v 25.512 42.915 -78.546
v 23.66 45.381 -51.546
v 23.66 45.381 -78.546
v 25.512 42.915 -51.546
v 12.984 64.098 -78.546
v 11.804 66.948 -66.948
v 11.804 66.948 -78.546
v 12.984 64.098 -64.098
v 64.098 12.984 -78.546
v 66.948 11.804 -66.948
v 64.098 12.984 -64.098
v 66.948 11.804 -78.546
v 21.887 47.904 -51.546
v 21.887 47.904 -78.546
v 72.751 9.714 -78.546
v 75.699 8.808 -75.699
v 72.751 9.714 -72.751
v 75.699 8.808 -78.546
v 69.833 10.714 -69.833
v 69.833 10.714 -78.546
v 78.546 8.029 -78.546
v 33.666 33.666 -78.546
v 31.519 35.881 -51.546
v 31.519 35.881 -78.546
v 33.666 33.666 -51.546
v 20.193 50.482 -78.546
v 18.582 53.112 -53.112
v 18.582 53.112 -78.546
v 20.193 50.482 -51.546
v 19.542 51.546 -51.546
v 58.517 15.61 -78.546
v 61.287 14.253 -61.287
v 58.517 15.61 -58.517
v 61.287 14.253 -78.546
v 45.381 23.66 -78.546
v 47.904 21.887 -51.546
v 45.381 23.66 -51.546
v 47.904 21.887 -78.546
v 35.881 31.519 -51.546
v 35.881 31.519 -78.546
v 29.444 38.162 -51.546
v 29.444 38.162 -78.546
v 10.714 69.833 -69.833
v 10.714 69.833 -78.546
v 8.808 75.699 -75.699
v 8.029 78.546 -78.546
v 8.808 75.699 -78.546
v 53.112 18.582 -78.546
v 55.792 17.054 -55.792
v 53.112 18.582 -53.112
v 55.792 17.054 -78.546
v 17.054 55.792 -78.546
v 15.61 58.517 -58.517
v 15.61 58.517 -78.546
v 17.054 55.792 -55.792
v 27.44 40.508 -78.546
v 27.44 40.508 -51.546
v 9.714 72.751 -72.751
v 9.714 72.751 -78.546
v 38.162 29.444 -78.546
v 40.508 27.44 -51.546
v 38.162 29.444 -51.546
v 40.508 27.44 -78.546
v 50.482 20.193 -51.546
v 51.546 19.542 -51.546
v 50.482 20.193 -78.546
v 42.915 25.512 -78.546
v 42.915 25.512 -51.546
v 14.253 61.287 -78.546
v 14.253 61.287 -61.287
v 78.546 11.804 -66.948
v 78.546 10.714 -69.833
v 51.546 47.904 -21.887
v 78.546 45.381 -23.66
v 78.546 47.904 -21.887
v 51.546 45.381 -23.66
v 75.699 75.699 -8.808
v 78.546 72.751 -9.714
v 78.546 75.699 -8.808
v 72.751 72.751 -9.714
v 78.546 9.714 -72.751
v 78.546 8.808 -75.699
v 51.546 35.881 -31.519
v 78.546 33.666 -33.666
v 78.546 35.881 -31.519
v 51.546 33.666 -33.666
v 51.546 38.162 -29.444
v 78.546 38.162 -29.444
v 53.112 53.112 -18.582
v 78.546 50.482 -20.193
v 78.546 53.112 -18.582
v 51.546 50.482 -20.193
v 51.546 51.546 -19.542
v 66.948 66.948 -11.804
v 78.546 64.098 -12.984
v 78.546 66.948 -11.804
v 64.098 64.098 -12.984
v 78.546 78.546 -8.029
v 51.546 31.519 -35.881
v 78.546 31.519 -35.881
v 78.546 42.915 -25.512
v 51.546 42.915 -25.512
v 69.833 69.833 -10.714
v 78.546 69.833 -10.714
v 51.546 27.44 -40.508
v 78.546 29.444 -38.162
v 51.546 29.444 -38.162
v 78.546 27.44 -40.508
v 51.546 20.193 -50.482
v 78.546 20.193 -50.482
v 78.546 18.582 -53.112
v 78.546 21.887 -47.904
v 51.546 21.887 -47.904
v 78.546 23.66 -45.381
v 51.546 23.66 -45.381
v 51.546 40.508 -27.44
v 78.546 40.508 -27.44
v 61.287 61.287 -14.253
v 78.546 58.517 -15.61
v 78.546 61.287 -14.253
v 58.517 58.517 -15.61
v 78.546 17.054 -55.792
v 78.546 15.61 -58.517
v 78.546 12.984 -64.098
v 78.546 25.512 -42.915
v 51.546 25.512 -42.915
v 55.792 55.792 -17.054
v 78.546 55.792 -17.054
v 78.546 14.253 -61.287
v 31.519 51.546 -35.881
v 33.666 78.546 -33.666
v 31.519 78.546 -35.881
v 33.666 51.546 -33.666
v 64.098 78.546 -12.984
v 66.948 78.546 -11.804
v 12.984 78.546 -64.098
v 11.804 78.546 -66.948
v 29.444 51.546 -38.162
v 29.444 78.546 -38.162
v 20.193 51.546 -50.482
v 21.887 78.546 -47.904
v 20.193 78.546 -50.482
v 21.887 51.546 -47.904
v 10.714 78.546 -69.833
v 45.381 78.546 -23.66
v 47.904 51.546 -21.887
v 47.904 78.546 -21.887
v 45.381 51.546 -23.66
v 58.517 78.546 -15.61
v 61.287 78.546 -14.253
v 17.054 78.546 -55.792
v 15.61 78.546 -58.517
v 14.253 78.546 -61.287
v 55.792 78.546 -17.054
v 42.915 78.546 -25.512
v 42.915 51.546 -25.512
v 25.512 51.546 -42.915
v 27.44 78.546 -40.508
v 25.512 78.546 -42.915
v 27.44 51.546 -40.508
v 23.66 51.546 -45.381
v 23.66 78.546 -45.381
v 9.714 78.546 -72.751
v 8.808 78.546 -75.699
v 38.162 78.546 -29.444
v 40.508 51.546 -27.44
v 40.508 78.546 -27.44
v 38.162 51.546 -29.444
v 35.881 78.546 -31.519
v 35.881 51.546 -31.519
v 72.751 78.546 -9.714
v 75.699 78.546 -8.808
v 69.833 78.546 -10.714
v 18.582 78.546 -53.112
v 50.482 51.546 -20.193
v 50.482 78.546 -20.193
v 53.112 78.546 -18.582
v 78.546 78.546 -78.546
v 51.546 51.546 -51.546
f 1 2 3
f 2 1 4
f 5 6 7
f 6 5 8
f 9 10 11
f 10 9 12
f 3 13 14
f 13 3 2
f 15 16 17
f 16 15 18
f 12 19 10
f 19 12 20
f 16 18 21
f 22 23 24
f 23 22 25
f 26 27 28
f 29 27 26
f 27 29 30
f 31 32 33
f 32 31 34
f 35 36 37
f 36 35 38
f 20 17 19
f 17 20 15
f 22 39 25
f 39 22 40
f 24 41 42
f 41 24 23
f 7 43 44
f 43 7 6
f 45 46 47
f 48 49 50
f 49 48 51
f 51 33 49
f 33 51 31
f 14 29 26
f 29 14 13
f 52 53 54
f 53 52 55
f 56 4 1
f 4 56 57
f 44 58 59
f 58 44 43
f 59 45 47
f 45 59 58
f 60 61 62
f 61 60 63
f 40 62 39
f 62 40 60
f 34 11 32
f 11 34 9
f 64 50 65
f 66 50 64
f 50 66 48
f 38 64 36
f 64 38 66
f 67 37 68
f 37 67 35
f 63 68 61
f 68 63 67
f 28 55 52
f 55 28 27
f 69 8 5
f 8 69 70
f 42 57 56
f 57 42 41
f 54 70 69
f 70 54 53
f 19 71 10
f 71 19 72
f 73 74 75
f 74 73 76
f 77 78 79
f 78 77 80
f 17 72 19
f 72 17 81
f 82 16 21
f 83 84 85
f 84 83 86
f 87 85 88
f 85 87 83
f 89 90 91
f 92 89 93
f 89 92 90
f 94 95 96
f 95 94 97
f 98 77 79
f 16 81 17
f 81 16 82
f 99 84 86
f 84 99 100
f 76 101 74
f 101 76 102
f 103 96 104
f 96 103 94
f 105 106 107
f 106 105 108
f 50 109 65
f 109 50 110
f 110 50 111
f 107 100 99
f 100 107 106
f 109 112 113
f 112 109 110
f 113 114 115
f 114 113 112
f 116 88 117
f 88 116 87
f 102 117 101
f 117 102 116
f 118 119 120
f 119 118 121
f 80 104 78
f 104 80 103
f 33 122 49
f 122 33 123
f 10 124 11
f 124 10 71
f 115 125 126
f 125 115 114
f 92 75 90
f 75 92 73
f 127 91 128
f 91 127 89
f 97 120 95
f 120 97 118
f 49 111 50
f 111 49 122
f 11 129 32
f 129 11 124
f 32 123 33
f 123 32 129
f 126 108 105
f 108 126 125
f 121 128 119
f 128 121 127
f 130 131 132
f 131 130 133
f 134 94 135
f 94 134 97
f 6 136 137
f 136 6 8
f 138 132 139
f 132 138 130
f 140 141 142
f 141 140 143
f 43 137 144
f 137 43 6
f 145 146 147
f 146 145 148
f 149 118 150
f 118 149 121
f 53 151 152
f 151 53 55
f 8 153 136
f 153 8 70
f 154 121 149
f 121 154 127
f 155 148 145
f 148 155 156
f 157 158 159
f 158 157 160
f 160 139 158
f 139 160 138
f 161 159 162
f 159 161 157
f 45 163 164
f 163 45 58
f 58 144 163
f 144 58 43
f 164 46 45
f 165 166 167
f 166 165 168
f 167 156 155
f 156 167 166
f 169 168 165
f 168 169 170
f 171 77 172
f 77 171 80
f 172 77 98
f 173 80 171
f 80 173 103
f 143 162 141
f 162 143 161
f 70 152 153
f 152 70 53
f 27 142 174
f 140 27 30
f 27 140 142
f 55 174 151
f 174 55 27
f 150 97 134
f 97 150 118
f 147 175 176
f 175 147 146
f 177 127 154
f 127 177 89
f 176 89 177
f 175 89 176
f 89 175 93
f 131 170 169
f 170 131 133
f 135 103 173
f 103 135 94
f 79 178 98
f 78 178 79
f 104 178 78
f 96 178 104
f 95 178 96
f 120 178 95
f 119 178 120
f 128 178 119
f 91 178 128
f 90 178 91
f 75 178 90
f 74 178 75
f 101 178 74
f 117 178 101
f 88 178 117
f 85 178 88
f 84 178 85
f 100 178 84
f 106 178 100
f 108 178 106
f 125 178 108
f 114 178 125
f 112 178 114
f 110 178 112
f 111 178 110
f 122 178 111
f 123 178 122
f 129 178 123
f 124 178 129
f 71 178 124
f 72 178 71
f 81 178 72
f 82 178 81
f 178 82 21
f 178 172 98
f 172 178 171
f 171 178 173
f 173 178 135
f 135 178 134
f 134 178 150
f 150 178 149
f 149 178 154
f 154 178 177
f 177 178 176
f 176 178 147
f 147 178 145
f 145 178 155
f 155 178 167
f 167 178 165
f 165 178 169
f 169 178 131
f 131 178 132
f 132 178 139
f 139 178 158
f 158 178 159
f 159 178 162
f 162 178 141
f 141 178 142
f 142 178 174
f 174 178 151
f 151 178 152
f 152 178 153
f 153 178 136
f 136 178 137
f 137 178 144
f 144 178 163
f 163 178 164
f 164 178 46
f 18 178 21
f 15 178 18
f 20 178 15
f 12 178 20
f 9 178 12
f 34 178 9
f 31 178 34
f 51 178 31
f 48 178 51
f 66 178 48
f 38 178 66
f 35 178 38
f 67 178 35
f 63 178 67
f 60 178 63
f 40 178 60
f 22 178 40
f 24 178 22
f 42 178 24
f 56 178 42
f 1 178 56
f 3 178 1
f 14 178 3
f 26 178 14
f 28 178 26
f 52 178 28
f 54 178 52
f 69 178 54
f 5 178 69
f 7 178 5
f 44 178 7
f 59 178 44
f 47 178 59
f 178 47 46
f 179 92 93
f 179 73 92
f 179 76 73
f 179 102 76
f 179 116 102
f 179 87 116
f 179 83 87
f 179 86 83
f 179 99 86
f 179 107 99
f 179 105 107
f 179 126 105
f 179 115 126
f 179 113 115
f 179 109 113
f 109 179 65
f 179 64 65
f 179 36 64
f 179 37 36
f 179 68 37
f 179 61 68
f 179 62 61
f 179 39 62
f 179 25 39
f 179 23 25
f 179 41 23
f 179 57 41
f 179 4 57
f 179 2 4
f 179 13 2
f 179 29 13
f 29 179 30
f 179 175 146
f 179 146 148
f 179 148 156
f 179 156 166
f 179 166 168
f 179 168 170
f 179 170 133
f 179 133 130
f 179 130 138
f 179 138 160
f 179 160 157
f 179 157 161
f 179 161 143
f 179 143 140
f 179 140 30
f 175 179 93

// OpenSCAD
// file: variables.scad
$fn=200;

scale_factor = 300/55;

CUBIE=18.9*scale_factor; //total side length of each cube piece (including rounded edges)
CORE=18*scale_factor;
SCREW_TIP=1.5*scale_factor;
SCREW_BODY=2*scale_factor;
SCREW = 3.5;
SCREW_HEAD=3.8*scale_factor;
INNER=4.5*scale_factor;
SPRING=3.2*scale_factor;
ROUND=2*scale_factor; //radius of rounded edges
DEPTH=6*scale_factor;
RAFT=5*scale_factor;
LAYER=0.3*scale_factor;
GAP=0.25*scale_factor;

core_height = 20 * scale_factor;
core_radius = 3.1 * scale_factor;

WITH_SUPPORT=false;
WITH_RAFT=false;

inner_cubie=(CUBIE-2*ROUND); //length of each cube before rounded edges

tile_length = inner_cubie*0.75;
//tile_height = 0.8 * scale_factor;
tile_height = 3;

HOLE_RADIUS = 1.3;
HOLE_HEIGHT = 20;

module tile(length, height) {
	translate([-length/2,-length/2,0]) {
		minkowski(){
			translate([0,0,-height/2]) cube([length,length,height]);
			cylinder(r=ROUND,h=height,center=true);
		}
	}
	
}
//tile(tile_length,tile_height);

module cubie() {
    translate([-inner_cubie/2,-inner_cubie/2, -inner_cubie/2])
    minkowski() {
        cube([inner_cubie, inner_cubie, inner_cubie]);
        sphere(r=ROUND);
    }
}

module disc() {
    cylinder(CUBIE, r1=CORE, r2=CORE,  center=true);

}

module disc2() {
    cylinder(CUBIE*10, r1=CORE, r2=CORE,center=true);

}

module icore() {
    disc();
    rotate([0,90,0])
        disc();
    rotate([90,0,0])
        disc();
}

module core2() {
    intersection() {
        disc2();
        rotate([0,90,0])
            disc2();
        rotate([90,0,0])
            disc2();
    }
}

module screw() {
    translate([5.2,0,0])
    rotate([0,90,0]) {
        cylinder(11.7,r1=SCREW_BODY,r2=SCREW_BODY,center=true);
        translate([0,0,-11.7/2-1.7/2])
            cylinder(1.7,r1=SCREW_HEAD,r2=SCREW_HEAD,center=true);
        translate([0,0,11.7/2+5.7/2])
            cylinder(5.7,r1=SCREW_TIP,r2=SCREW_TIP,center=true);
    }
}
// main file
include <variables.scad>

module corner_piece_connector_solid() {
    difference() {
        intersection() {
        cube(size=CUBIE+CUBIE-2*INNER,center=true);
        translate([CUBIE,CUBIE,-CUBIE])
        core2();
        }
    }
}
module corner_connector() {
    difference() {
        corner_piece_connector_solid();
        cube(size=CUBIE, center=true);
    }
}

corner_connector();
